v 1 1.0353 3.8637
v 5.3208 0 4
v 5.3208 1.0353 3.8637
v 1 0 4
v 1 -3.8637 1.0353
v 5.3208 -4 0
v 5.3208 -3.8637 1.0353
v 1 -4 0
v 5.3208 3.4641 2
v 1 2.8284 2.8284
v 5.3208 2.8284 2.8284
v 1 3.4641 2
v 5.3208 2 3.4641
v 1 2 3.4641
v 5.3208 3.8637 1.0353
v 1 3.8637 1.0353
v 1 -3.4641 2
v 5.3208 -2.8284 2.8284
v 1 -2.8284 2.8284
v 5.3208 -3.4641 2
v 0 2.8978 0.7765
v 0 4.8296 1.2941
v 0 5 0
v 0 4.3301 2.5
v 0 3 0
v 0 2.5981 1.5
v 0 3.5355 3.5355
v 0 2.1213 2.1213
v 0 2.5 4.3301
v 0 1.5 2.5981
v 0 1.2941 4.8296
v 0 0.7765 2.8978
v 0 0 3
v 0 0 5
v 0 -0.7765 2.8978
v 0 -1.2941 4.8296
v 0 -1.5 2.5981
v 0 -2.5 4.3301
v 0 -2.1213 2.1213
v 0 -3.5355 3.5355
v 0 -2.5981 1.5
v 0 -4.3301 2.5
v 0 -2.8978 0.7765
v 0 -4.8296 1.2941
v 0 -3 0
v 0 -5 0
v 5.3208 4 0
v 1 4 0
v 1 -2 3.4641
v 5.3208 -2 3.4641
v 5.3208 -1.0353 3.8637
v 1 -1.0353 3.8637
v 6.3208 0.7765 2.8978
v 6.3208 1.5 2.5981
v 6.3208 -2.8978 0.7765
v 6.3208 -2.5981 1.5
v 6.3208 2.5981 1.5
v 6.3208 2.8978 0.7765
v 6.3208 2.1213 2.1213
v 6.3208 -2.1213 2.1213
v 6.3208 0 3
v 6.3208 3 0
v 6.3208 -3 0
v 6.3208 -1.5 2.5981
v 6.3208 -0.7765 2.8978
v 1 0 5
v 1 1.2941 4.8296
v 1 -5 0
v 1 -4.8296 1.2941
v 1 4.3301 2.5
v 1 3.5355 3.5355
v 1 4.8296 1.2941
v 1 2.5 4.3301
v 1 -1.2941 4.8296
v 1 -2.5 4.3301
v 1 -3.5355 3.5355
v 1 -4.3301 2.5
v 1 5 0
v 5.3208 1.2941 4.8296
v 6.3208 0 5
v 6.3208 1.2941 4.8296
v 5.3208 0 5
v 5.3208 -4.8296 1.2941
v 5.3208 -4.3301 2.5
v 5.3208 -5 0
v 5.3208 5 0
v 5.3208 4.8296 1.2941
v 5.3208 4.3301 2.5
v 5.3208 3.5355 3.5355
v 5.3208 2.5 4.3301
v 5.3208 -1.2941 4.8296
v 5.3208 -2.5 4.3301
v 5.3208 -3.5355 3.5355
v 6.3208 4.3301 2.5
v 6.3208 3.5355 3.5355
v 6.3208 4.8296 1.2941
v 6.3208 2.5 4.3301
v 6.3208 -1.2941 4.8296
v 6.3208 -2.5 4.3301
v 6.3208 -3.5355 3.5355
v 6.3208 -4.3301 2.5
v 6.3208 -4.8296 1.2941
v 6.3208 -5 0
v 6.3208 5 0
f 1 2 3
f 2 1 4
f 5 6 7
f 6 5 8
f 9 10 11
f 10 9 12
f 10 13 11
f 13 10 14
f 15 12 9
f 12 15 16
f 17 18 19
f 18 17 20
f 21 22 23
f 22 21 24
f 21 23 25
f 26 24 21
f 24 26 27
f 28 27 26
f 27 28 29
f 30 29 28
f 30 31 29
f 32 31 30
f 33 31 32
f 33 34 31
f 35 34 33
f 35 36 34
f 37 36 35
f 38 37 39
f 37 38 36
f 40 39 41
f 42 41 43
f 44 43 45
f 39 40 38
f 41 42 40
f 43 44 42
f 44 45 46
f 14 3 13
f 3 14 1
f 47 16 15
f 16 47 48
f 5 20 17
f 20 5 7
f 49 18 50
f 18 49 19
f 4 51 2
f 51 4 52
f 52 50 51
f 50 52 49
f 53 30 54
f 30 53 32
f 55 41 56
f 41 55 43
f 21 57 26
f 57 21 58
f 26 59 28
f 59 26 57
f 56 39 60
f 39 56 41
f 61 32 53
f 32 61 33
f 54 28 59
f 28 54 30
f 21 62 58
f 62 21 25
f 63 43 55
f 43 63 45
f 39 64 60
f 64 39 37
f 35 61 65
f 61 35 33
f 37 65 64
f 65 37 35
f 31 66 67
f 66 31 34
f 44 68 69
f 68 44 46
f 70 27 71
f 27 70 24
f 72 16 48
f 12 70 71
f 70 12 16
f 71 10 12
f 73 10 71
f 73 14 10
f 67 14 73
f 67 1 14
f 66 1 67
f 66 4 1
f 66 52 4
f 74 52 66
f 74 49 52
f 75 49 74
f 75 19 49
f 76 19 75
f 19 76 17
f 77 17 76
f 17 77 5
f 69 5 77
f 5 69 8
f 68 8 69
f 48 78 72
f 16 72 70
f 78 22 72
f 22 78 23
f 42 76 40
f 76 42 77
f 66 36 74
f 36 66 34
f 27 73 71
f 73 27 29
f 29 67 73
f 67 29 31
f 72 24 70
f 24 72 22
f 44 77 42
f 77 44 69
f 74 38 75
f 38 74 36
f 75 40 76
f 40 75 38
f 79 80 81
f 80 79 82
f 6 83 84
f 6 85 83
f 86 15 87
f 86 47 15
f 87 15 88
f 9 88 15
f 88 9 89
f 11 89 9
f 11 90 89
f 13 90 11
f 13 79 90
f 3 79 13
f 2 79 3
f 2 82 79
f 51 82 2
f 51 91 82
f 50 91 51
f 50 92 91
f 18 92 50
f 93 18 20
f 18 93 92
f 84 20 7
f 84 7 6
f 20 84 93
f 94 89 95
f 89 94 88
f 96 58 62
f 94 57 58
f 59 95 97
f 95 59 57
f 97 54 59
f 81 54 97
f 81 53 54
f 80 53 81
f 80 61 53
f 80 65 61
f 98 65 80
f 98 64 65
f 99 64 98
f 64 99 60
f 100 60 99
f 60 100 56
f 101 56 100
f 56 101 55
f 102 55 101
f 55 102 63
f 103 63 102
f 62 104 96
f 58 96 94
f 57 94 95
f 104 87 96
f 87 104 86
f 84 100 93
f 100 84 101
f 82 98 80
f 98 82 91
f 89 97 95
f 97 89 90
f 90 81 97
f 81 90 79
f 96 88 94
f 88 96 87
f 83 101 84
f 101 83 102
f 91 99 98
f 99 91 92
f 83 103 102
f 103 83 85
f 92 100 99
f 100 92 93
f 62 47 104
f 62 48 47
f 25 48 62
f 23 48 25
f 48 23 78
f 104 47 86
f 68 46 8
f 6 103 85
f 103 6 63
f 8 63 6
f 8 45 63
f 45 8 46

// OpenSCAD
// file: ../build_environments.scad
// build_environments.scad: modules to build level sections
//

module pool(diameter=10.0, wall_height=2.0, step_width=3.0, connections=[])
{
    difference() {
        union() {
        difference() {
            cylinder(h=0.5,r1=diameter+step_width,r2=diameter+step_width,$fn=48);
            translate([0,0,-0.1])
                cylinder(h=0.7,r1=diameter,r2=diameter,$fn=48);
        }
        difference() {
            cylinder(h=wall_height,r1=diameter+step_width+1.0,r2=diameter+step_width+1.0,$fn=48);
            translate([0,0,-0.1])
                cylinder(h=wall_height+0.2,r1=diameter+step_width,r2=diameter+step_width,$fn=48);
        }
        }
    
        for (c = connections)
        {
            rotate([0,90,0]) {
                angle = atan2(c[1],c[0]);
                rotate([-angle,0,0]) {
                    cylinder(h=diameter+5.0,r1=c[2],r2=c[2],$fn=48);
                }
            }
        }
    }
}

module straight(length=10.0, width=2.0, dy1=0.0, dy2=0.0, dz=0.0)
{
    dims = [0, 0, 0, 0, 0, (dz/length)];
    matrix = [
        [ 1, dims[0], dims[1], 0 ],
        [ dims[2], 1, dims[4], 0 ],
        [ dims[5], dims[3], 1, 0 ],
        [ 0, 0, 0, 1 ]
    ];
    multmatrix(matrix)
    difference() {
        translate([dy1,0,0])
        union() {
            rotate([0,90,0]) {
                difference() {
                    cylinder(h=(length-dy1-dy2),r1=width+1.0,r2=width+1.0,$fn=24);
                    translate([0,0,-0.1])
                        cylinder(h=(length-dy1-dy2+0.2),r1=width,r2=width,$fn=24);
                }
                difference() {
                    cylinder(h=1.0,r1=width+2.0,r2=width+2.0,$fn=24);
                    translate([0,0,-0.1])
                        cylinder(h=1.2,r1=width,r2=width,$fn=24);
                }
                translate([0,0,(length-dy1-dy2)-1.0]) {
                    difference() {
                        cylinder(h=1.0,r1=width+2.0,r2=width+2.0,$fn=24);
                        translate([0,0,-0.1])
                            cylinder(h=1.2,r1=width,r2=width,$fn=24);
                    }
                }
            }
        }
        translate([0,0,-(2*width+4.0)/2])
            cube([3*length,3*length,2*width+4.0],center=true);
    }
}

module curve(p0=[0,0], center=[0,0], dir=1, angle=0.0, width=2.0)
{
    radius = sqrt((p0[0]-center[0])*(p0[0]-center[0]) + (p0[1]-center[1])*(p0[1]-center[1]));
    if (dir == 0) {
        difference() {
            rotate([0,0,-90])
            difference() {
                rotate_extrude(angle = angle, convexity = 10, $fn=32)
                    translate([radius, 0, 0])
                        circle(r = width+1.0,$fn=24);
                rotate([0,0,-1.0])
                    rotate_extrude(angle = angle+2.0, convexity = 10, $fn=32)
                        translate([radius, 0, 0])
                            circle(r = width,$fn=24);
            }
            translate([0,0,-(2*width+4.0)/2])
                cube([5*radius,5*radius,2*width+4.0],center=true);
        }
    }
    else {
        difference() {
            rotate([0,0,90])
            difference() {
                rotate_extrude(angle = -angle, convexity = 10, $fn=32)
                    translate([radius, 0, 0])
                        circle(r = width+1.0,$fn=24);
                rotate([0,0,1.0])
                    rotate_extrude(angle = -angle-2.0, convexity = 10, $fn=32)
                        translate([radius, 0, 0])
                            circle(r = width,$fn=24);
            }
            translate([0,0,-(2*width+4.0)/2])
                cube([5*radius,5*radius,2*width+4.0],center=true);
        }
    }

}

// test pool
//pool(diameter=12.0000, wall_height=3.0000, step_width=3.0000, connections=[[0.0000,-26.0000,2.0000], [23.6074,0.0000,2.0000]]);

// test straight, slope
//straight(length=26.0000, width=2.0000, dy1=11.8322, dy2=6.7082, dz=0.0000);
//straight(length=29.1549, width=12.0000, dy1=0.0000, dy2=0.0000, dz=-15.0000);

// test curve
//curve(p0=[23.6074, 0.0000], center=[23.6074, 5.0000], dir=0, angle=60.1011, width=2.0000);
//curve(p0=[33.6426, 12.4219], center=[37.9771, 9.9295], dir=1, angle=120.4627, width=2.0000);
// main file
use <../build_environments.scad>;
straight(length=6.3208, width=3.0000, dy1=0.0000, dy2=0.0000, dz=0.0000);
